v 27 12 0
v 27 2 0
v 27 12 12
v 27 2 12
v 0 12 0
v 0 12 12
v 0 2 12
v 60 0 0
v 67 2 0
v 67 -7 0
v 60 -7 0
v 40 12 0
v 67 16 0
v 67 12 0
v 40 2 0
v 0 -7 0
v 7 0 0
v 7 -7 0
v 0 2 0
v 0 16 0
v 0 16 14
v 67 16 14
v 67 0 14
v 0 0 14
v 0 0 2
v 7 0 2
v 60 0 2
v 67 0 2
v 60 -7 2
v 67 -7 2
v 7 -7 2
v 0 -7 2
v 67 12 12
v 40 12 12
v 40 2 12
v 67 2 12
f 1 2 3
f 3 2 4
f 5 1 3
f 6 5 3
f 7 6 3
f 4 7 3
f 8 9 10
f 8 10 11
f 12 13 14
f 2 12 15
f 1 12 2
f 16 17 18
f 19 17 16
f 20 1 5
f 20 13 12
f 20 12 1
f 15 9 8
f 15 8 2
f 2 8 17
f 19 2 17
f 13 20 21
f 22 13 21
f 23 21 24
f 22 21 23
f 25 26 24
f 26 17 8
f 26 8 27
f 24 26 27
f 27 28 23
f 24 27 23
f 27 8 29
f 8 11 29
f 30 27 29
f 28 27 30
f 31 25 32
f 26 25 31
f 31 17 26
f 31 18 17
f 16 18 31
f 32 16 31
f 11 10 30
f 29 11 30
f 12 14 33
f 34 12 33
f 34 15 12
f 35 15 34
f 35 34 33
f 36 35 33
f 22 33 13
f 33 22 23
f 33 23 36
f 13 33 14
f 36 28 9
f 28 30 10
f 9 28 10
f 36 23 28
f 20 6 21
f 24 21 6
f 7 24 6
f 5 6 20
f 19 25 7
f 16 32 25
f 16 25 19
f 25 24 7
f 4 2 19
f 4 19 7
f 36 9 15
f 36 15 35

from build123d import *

# Parameters (mm, degrees)
BOX003_W     = 7
BOX003_H     = 9
BOX003_DEPTH = 2
BOX004_W     = 7
BOX004_H     = 9
BOX004_DEPTH = 2
BOX002_W     = 27
BOX002_H     = 10
BOX002_DEPTH = 12
BOX001_W     = 27
BOX001_H     = 10
BOX001_DEPTH = 12
BOX_W        = 67
BOX_H        = 16
BOX_DEPTH    = 14


with BuildPart() as cubo003:
    # Box003 → Box003 (new body)
    with BuildSketch(Plane(origin=(0, -7, 0), x_dir=(1, 0, 0), z_dir=(0, 0, 1))):
        with Locations((3.5, 4.5)):
            Rectangle(BOX003_W, BOX003_H)
    extrude(amount=BOX003_DEPTH)


with BuildPart() as fusion:
    # Box004 → Box004 (new body)
    with BuildSketch(Plane(origin=(60, -7, 0), x_dir=(1, 0, 0), z_dir=(0, 0, 1))):
        with Locations((3.5, 4.5)):
            Rectangle(BOX004_W, BOX004_H)
    extrude(amount=BOX004_DEPTH)

    # Fusion: union Cubo003
    add(cubo003.part)


with BuildPart() as cubo002:
    # Box002 → Box002 (new body)
    with BuildSketch(Plane(origin=(40, 2, 0), x_dir=(1, 0, 0), z_dir=(0, 0, 1))):
        with Locations((13.5, 5)):
            Rectangle(BOX002_W, BOX002_H)
    extrude(amount=BOX002_DEPTH)


with BuildPart() as cubo001:
    # Box001 → Box001 (new body)
    with BuildSketch(Plane(origin=(0, 2, 0), x_dir=(1, 0, 0), z_dir=(0, 0, 1))):
        with Locations((13.5, 5)):
            Rectangle(BOX001_W, BOX001_H)
    extrude(amount=BOX001_DEPTH)


with BuildPart() as fusion001:
    # Box → Box (new body)
    with BuildSketch(Plane.XY):
        with Locations((33.5, 8)):
            Rectangle(BOX_W, BOX_H)
    extrude(amount=BOX_DEPTH)

    # Cut: cut Cubo001
    add(cubo001.part, mode=Mode.SUBTRACT)

    # Cut001: cut Cubo002
    add(cubo002.part, mode=Mode.SUBTRACT)

    # Fusion001: union Fusion
    add(fusion.part)


solid = fusion001.part
